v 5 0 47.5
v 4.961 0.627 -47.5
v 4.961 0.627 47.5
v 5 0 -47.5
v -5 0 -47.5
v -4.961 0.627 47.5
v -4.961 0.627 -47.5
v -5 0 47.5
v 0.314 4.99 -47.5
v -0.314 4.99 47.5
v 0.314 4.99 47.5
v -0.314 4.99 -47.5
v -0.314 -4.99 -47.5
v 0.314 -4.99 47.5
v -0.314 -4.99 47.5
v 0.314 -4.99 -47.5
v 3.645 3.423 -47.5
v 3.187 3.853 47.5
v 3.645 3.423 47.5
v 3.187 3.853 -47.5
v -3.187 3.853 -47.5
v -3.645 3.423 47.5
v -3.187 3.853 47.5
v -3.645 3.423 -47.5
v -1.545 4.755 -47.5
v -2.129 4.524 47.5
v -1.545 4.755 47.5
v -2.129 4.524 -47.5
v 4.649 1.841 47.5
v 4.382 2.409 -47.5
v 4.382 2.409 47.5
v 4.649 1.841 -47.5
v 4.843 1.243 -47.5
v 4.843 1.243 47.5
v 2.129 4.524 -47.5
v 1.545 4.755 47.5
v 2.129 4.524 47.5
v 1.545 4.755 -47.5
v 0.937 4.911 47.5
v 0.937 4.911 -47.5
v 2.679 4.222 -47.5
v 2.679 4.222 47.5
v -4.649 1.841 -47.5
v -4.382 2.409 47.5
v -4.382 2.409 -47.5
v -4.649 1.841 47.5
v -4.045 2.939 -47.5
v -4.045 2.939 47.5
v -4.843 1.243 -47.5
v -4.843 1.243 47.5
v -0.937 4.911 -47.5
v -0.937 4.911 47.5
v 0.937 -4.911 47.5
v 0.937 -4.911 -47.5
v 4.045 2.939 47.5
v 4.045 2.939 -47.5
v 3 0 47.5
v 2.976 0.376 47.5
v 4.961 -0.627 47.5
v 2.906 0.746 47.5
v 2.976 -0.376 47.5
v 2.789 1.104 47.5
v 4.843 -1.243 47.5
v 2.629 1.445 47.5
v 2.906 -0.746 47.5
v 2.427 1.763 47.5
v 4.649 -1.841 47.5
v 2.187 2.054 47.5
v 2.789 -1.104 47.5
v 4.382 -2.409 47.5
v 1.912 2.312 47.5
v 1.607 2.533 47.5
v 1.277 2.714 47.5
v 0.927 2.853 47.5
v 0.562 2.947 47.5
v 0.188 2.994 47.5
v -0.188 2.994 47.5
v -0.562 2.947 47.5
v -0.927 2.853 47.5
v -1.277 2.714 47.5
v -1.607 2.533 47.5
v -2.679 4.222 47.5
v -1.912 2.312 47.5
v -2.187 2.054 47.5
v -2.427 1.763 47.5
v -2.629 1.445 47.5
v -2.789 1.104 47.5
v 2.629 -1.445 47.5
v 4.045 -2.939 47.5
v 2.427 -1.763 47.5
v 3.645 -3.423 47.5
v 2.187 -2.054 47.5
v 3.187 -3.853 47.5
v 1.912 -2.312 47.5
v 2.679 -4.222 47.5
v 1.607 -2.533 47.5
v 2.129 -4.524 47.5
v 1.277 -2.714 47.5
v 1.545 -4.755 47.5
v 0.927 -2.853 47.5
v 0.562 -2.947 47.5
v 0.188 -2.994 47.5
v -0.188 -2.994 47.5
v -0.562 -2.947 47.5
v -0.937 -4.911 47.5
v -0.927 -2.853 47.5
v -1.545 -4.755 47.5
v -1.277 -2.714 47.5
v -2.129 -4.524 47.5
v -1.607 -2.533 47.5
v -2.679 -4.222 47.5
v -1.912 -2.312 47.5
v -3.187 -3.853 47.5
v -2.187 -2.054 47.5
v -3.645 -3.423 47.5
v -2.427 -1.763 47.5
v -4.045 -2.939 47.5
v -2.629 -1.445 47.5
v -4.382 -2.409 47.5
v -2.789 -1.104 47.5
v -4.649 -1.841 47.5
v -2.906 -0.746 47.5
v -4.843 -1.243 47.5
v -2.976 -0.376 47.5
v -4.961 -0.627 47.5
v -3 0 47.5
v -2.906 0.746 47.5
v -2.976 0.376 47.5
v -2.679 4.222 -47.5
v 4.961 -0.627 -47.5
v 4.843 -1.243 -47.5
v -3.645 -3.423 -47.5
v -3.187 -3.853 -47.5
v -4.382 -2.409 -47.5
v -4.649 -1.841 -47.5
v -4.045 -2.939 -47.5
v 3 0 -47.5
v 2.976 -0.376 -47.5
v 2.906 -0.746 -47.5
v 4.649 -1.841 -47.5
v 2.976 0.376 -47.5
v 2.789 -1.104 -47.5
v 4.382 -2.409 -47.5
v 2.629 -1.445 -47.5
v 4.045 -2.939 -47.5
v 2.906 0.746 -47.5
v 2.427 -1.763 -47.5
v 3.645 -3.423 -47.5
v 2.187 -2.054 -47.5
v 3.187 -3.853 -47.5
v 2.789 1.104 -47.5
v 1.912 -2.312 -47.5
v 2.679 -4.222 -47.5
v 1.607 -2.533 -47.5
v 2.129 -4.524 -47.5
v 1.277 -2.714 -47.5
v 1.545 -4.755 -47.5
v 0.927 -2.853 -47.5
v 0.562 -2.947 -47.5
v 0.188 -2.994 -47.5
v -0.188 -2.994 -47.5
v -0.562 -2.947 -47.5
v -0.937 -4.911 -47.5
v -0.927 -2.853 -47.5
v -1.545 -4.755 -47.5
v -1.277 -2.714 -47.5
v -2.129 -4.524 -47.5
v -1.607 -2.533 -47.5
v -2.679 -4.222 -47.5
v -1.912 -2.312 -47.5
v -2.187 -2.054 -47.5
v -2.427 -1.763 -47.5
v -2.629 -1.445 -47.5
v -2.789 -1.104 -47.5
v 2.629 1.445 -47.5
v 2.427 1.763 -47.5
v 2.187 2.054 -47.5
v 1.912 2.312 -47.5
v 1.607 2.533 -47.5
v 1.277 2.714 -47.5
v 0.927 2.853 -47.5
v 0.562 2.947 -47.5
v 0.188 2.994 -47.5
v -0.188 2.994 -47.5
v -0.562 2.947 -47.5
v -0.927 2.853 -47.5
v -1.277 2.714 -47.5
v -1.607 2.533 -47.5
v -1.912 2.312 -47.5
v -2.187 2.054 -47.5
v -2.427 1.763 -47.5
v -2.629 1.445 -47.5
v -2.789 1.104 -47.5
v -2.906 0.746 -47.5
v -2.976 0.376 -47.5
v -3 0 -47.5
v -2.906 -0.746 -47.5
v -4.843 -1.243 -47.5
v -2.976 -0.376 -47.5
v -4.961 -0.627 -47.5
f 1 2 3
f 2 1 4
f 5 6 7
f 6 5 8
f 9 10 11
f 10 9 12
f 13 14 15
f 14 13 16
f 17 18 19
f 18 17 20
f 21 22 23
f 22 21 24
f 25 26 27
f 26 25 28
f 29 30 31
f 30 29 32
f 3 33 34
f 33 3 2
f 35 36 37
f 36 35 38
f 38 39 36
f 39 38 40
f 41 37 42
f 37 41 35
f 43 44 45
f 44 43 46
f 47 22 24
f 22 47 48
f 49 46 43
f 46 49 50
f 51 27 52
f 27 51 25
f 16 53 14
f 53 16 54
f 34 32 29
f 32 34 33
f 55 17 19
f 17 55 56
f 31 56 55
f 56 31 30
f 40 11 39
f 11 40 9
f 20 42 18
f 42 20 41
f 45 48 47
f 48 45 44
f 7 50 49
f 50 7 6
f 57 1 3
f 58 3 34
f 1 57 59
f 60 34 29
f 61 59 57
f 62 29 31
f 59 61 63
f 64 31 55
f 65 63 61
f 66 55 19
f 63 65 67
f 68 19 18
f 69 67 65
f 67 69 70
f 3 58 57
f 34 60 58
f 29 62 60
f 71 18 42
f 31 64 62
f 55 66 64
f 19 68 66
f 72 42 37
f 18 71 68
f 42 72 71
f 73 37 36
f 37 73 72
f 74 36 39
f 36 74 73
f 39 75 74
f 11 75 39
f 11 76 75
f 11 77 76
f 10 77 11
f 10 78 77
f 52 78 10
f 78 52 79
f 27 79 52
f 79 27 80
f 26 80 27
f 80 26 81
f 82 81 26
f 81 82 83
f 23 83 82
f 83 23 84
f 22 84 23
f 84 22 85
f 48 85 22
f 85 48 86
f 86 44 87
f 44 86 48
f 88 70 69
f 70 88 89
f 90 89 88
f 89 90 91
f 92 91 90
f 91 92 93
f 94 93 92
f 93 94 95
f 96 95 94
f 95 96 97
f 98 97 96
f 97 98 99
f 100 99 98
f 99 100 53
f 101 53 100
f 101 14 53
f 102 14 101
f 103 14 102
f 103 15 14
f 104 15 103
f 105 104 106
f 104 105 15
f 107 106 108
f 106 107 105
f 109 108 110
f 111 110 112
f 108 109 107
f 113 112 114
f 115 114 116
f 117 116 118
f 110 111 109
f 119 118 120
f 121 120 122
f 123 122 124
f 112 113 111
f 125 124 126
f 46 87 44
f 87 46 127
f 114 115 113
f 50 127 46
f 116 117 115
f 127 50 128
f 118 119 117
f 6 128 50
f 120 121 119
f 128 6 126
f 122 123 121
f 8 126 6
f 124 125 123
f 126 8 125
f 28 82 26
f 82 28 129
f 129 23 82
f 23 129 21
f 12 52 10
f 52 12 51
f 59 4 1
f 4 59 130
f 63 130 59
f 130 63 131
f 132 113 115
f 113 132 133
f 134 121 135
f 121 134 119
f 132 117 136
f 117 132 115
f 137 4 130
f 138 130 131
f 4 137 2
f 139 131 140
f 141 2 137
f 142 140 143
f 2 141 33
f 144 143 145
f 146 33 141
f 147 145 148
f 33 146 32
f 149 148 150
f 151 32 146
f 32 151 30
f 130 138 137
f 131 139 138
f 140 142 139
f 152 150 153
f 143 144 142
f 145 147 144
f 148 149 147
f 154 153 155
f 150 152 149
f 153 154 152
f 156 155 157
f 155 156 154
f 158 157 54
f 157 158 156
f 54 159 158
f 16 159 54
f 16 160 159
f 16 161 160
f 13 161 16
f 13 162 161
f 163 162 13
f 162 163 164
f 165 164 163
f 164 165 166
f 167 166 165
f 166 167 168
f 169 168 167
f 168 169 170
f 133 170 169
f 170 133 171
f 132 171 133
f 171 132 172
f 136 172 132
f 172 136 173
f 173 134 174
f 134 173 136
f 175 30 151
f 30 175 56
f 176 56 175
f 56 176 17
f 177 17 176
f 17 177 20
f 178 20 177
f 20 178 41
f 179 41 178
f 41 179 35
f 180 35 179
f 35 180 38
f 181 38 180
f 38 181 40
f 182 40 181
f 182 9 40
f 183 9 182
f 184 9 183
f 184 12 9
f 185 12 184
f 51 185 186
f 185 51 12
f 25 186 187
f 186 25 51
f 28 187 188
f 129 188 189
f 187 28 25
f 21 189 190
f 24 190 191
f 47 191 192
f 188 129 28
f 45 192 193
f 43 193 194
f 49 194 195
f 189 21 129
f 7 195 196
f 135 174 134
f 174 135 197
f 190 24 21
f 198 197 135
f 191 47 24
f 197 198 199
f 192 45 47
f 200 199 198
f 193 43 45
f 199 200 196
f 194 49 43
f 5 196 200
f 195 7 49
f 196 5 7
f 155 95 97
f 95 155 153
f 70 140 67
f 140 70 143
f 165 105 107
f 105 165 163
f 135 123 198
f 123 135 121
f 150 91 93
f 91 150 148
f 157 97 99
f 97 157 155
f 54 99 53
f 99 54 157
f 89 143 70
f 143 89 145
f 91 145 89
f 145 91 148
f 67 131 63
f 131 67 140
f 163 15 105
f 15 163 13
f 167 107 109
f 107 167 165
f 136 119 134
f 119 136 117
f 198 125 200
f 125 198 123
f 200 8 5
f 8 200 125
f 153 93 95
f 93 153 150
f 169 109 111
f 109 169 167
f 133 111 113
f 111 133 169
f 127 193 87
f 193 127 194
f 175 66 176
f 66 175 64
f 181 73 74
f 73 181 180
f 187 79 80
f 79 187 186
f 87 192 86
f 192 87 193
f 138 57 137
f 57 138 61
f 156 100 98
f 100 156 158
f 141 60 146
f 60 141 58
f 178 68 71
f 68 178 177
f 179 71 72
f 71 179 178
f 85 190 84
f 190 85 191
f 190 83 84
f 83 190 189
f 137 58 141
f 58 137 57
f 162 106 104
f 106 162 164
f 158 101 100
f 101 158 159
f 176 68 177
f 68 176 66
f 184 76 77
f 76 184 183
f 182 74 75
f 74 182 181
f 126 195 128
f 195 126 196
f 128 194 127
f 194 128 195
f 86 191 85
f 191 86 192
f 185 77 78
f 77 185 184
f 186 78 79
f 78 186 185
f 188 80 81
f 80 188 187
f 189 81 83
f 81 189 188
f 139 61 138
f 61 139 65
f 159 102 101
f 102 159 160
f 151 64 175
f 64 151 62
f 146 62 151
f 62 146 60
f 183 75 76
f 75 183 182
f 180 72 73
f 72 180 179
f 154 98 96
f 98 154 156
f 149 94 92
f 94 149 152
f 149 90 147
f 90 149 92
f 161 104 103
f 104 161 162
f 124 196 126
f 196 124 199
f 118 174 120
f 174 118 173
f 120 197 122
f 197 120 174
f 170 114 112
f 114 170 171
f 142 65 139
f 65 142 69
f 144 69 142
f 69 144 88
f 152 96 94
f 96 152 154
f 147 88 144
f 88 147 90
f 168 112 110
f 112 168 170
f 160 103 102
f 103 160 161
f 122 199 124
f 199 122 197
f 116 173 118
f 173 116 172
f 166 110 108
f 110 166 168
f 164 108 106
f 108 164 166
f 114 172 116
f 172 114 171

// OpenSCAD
$fn = 50;


difference() {
	union() {
		translate(v = [0, 0, -47.5000000000]) {
			cylinder(h = 95, r = 5.0000000000);
		}
	}
	union() {
		translate(v = [0, 0, -100.0000000000]) {
			cylinder(h = 200, r = 3);
		}
	}
}
